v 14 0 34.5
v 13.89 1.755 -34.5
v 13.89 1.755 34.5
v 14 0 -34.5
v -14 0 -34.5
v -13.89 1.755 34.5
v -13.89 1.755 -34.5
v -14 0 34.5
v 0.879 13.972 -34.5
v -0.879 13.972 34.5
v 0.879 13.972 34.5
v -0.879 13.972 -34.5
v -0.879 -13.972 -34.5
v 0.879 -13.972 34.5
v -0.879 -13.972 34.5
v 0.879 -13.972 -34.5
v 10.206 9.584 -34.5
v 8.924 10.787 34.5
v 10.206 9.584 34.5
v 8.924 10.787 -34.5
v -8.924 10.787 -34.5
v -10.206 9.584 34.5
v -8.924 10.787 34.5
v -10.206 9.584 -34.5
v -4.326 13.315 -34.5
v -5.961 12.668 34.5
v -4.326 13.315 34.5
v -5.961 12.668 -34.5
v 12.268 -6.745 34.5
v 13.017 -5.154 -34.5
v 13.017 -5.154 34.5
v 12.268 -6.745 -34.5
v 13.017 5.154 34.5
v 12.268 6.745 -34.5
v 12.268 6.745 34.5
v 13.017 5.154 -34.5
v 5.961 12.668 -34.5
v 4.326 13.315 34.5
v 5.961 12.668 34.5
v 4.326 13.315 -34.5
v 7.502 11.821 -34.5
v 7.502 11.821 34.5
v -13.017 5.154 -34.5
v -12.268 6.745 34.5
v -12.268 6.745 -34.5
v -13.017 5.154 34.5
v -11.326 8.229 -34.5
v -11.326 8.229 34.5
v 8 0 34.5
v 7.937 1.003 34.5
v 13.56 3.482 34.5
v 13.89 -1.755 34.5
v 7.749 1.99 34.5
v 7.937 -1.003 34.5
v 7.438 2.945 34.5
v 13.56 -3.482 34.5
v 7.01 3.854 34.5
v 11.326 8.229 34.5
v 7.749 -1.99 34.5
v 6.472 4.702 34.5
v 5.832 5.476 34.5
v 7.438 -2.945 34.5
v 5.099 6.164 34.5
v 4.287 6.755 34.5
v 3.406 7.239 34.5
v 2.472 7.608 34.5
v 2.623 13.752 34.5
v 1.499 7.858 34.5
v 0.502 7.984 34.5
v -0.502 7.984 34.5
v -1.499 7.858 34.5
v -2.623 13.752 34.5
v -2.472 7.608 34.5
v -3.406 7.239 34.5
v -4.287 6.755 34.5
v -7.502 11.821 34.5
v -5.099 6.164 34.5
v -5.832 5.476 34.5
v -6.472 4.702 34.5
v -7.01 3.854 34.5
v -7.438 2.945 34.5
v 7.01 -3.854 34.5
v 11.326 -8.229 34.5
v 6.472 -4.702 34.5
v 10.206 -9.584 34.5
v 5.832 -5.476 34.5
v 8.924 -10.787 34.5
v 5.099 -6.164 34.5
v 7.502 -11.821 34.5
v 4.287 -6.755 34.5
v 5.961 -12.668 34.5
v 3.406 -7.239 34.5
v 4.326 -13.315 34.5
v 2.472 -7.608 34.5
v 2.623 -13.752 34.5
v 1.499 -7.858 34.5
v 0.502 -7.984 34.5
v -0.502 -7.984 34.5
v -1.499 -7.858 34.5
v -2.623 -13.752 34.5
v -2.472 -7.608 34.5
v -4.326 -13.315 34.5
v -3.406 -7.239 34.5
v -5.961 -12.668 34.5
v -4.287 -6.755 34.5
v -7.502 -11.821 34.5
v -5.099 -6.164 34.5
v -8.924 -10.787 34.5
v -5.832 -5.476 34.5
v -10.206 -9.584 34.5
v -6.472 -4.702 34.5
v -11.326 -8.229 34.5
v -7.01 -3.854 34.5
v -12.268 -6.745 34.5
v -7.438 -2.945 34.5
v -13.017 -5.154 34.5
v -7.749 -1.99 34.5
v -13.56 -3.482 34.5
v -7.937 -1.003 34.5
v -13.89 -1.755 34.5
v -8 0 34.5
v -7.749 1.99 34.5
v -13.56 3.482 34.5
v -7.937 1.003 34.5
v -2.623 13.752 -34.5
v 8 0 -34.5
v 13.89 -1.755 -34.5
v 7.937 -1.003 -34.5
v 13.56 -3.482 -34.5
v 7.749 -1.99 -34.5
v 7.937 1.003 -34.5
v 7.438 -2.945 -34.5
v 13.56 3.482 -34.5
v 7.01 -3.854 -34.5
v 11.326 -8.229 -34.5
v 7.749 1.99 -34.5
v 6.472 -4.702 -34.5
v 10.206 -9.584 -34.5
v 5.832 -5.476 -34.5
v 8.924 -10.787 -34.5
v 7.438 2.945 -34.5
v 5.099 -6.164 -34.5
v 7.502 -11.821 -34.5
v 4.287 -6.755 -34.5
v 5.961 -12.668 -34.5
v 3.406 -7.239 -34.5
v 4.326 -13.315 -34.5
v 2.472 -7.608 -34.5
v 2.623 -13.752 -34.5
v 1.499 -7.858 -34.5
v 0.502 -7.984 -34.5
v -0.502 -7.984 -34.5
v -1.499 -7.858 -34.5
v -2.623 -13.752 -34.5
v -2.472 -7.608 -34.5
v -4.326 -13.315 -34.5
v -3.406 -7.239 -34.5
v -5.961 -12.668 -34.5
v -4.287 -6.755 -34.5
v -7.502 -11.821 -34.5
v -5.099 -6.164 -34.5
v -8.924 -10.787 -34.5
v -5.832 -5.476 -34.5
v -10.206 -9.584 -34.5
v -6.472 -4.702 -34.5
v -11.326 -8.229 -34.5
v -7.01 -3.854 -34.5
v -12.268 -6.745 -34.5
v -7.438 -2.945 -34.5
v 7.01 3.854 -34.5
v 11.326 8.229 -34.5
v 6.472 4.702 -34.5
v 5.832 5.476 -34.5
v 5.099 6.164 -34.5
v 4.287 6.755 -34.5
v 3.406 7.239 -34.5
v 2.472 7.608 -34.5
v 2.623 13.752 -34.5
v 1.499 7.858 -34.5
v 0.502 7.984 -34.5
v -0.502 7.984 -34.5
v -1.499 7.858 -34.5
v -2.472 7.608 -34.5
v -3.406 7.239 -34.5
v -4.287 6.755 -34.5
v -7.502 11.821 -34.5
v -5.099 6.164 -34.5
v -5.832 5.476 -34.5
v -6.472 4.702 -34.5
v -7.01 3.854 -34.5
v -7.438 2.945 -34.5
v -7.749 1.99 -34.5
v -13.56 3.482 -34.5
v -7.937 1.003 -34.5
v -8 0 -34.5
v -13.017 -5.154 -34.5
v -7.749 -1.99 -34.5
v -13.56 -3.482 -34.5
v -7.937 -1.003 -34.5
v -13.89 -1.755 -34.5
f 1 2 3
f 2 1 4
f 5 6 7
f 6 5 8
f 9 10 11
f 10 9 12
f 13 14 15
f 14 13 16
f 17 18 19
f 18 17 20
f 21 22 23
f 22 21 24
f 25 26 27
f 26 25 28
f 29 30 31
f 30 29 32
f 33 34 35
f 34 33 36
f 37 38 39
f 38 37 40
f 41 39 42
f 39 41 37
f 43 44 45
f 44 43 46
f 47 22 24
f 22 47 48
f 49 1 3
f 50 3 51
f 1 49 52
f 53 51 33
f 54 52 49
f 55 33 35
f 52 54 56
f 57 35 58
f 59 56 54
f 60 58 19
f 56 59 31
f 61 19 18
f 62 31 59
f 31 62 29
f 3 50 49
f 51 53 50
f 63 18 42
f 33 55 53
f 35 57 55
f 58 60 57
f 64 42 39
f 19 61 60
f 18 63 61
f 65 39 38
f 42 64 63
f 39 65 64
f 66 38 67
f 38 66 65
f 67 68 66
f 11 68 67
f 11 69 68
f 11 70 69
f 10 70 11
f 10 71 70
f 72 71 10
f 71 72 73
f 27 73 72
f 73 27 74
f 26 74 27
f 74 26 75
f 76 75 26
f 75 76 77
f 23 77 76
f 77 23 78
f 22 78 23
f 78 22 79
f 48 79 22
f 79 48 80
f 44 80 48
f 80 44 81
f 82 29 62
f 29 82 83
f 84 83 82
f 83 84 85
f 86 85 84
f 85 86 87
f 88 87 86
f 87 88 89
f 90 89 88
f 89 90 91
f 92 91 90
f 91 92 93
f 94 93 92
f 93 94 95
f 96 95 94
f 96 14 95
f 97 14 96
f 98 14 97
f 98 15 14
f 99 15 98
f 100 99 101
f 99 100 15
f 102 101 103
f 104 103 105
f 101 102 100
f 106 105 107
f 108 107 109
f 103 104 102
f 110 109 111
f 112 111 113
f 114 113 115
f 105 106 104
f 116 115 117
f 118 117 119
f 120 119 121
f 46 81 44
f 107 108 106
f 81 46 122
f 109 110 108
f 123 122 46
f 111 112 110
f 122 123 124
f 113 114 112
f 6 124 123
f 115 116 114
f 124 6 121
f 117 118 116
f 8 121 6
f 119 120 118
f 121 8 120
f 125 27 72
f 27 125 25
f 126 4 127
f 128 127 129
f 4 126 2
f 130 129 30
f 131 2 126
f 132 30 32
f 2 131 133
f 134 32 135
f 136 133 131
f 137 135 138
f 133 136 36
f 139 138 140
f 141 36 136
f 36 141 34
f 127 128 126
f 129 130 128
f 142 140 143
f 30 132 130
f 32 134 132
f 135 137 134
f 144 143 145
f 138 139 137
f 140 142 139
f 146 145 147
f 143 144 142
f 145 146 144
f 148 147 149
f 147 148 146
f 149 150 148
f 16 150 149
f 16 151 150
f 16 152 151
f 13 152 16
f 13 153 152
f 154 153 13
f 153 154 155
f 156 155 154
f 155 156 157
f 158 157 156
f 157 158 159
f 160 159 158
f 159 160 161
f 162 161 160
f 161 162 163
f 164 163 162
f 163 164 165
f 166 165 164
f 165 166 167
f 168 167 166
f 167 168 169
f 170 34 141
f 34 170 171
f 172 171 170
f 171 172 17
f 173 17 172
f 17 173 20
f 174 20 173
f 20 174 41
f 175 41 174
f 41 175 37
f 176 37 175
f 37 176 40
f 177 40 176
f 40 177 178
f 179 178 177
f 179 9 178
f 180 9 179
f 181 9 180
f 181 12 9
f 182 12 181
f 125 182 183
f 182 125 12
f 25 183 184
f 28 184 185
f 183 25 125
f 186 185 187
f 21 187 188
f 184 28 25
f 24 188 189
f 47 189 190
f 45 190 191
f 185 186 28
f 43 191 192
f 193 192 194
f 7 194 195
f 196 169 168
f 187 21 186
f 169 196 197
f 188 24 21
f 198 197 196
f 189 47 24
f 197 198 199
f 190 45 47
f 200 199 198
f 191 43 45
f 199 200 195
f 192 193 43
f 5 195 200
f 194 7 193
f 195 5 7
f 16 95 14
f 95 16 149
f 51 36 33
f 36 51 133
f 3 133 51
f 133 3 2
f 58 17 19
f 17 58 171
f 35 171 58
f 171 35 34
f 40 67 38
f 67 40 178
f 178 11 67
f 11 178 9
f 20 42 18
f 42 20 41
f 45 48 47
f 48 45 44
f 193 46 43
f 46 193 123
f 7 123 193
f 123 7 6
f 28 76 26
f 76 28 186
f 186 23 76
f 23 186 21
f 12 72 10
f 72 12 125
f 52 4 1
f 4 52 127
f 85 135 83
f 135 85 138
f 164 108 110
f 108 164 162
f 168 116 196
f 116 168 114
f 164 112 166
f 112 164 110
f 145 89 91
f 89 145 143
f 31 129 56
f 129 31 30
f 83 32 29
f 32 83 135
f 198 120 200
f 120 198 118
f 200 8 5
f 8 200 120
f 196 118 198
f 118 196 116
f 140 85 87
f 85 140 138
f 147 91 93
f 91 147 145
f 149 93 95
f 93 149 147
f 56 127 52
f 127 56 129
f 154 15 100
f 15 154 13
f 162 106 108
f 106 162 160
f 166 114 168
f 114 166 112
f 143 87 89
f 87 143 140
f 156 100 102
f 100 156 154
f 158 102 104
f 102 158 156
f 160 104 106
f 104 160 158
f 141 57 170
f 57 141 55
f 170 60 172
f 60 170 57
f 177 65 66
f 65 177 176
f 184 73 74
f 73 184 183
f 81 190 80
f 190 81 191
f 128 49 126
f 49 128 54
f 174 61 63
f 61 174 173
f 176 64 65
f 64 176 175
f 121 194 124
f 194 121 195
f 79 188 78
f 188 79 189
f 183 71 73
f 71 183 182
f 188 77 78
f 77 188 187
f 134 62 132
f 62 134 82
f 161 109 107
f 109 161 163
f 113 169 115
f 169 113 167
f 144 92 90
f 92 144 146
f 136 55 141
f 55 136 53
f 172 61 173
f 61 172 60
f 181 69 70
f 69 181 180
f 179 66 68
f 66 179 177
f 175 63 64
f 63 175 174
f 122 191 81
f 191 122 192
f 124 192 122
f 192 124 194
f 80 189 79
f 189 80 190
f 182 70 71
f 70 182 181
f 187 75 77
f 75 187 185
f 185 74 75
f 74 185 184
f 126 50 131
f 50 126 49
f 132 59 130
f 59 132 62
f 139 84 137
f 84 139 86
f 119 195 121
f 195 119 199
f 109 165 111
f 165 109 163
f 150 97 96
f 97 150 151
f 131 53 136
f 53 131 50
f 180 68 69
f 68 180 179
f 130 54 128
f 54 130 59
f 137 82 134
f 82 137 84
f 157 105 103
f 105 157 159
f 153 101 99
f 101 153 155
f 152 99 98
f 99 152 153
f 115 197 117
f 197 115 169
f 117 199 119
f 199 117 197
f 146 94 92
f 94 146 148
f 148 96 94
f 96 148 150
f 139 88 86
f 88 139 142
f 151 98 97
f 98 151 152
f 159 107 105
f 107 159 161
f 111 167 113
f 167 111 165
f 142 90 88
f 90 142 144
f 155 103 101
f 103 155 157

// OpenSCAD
$fn = 50;


difference() {
	union() {
		translate(v = [0, 0, -34.5000000000]) {
			cylinder(h = 69, r = 14.0000000000);
		}
	}
	union() {
		translate(v = [0, 0, -100.0000000000]) {
			cylinder(h = 200, r = 8);
		}
	}
}
